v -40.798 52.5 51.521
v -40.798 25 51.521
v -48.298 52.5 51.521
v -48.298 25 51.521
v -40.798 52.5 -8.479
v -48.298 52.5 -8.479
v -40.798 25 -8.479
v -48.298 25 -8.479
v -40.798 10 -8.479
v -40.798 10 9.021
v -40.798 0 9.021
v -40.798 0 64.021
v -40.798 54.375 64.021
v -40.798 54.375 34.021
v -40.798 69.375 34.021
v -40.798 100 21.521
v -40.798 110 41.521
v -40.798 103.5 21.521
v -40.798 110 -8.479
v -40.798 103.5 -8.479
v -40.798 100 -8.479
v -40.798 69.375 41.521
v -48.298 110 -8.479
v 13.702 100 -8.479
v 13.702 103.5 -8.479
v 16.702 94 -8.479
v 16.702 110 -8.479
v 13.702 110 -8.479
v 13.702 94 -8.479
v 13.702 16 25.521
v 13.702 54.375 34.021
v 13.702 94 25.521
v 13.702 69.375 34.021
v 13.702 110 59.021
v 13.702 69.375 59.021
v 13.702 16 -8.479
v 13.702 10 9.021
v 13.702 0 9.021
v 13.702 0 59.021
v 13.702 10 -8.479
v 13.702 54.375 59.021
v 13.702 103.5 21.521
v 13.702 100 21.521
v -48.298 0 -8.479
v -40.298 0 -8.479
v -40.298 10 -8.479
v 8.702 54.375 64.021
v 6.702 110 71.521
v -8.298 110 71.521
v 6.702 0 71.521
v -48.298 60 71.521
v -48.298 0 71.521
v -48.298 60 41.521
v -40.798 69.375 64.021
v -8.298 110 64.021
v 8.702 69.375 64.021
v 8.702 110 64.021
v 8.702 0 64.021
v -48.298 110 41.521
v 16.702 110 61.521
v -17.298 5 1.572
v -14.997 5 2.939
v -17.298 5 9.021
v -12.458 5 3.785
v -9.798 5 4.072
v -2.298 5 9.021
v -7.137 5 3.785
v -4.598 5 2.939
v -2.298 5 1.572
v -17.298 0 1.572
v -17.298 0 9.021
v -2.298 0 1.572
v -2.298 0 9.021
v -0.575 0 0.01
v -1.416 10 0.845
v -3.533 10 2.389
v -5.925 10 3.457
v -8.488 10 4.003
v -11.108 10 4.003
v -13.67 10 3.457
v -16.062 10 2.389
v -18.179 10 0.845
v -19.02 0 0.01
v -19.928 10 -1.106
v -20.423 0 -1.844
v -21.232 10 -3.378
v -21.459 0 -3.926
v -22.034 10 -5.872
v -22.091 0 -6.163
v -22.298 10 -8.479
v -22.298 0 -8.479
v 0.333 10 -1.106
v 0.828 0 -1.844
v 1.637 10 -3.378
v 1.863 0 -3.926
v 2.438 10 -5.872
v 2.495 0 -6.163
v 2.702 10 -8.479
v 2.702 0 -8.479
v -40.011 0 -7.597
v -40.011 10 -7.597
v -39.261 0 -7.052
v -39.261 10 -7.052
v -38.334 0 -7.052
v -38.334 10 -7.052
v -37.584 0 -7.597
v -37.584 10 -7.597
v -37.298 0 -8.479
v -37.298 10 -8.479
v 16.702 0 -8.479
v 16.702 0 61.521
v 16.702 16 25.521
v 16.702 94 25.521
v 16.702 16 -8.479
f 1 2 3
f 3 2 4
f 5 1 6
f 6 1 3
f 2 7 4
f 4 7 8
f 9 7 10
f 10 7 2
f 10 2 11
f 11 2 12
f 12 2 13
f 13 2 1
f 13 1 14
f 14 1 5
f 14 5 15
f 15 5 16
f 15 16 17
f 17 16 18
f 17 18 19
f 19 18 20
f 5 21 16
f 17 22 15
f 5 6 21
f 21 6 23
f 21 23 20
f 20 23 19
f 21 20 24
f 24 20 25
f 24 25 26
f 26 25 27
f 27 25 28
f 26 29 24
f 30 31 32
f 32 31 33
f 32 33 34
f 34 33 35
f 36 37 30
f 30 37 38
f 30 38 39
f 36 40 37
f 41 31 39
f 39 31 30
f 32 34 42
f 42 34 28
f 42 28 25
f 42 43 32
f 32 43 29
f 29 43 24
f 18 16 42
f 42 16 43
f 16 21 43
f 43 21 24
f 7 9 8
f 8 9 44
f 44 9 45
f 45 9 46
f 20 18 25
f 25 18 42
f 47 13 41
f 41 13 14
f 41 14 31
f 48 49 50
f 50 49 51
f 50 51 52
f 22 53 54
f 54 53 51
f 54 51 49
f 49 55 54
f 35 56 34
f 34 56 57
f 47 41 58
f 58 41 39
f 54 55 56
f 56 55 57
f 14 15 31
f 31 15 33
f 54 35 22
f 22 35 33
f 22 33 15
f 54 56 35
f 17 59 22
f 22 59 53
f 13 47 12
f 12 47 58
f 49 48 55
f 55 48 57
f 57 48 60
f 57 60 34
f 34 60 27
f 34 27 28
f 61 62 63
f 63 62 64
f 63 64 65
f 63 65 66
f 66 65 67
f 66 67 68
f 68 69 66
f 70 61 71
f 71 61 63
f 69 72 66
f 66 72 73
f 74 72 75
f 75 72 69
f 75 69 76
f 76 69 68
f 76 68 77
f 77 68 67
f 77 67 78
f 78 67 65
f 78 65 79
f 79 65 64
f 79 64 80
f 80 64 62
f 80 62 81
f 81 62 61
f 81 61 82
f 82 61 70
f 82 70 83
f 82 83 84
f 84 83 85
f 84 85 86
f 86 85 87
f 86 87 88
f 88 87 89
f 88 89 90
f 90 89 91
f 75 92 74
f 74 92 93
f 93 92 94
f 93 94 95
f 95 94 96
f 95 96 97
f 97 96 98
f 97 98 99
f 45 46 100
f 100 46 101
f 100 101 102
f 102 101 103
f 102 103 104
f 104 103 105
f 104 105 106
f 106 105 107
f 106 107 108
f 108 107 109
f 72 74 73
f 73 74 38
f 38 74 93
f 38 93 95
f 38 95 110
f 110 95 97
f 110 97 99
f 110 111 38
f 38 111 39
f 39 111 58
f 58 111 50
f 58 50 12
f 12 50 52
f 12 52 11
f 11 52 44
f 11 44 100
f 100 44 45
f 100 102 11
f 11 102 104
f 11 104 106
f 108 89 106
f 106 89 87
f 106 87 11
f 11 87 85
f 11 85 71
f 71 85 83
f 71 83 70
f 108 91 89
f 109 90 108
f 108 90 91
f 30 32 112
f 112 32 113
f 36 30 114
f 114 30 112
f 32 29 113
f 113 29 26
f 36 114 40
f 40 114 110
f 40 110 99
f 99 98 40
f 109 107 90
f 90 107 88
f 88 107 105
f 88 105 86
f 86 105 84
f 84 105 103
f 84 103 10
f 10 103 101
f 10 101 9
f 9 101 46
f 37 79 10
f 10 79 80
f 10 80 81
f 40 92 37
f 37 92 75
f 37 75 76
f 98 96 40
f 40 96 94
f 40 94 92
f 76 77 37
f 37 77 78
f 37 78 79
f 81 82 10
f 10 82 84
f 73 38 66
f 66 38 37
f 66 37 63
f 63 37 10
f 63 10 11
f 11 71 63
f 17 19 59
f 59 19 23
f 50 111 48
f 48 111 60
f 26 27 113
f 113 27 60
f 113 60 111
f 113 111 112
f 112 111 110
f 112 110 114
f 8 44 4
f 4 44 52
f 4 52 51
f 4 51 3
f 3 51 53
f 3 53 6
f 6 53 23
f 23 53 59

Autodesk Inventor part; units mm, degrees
ref_plane "YZ Plane" through (0, 0, 0) normal (1, 0, 0) x (0, 1, 0)
ref_plane "XZ Plane" through (0, 0, 0) normal (0, 1, 0) x (-1, 0, 0)
ref_plane "XY Plane" through (0, 0, 0) normal (0, 0, 1) x (1, 0, 0)
sketch "Sketch1" plane through (0, 0, 0) normal (0, 1, 0) x (-1, 0, 0)
  line L0 (48.2977, 71.5211) -> (-16.7023, 71.5211)
  line L1 (-16.7023, 71.5211) -> (-16.7023, -8.4789)
  line L2 (-16.7023, -8.4789) -> (48.2977, -8.4789)
  line L3 (48.2977, -8.4789) -> (48.2977, 71.5211)
  arc A0 (22.2975, -8.4789) -> (-2.7023, -8.4789) centre (9.7976, -8.4281) ccw
  line L4 (-16.7023, -8.4789) -> (-13.7023, -8.4789)
  line L5 (-13.7023, -8.4789) -> (-13.7023, 71.5211)
  line L6 (-13.7023, 71.5211) -> (-16.7023, 71.5211)
  line L7 (-16.7023, 71.5211) -> (-16.7023, -8.4789)
  line L8 (48.2977, -8.4789) -> (40.7977, -8.4789)
  line L9 (40.7977, -8.4789) -> (40.7977, 71.5211)
  line L10 (40.7977, 71.5211) -> (48.2977, 71.5211)
  line L11 (48.2977, 71.5211) -> (48.2977, -8.4789)
  line L12 (-13.7023, -8.4789) -> (40.7977, -8.4789)
  line L13 (40.7977, -8.4789) -> (40.7977, 9.0211)
  line L14 (40.7977, 9.0211) -> (-13.7023, 9.0211)
  line L15 (-13.7023, 9.0211) -> (-13.7023, -8.4789)
  line L16 (-13.7023, 71.5211) -> (40.7977, 71.5211)
  line L17 (40.7977, 71.5211) -> (40.7977, 64.0211)
  line L18 (40.7977, 64.0211) -> (-13.7023, 64.0211)
  line L19 (-13.7023, 64.0211) -> (-13.7023, 71.5211)
  line L20 (-16.7023, 61.5211) -> (-6.7023, 71.5211)
  line L21 (-16.7023, 61.5211) -> (-16.7023, 71.5211)
  line L22 (-6.7023, 71.5211) -> (-13.7023, 64.5211)
  line L23 (-13.7023, 64.0211) -> (-13.7023, 64.5211)
  line L24 (-6.7023, 71.5211) -> (40.7977, 71.5211)
  line L25 (40.7977, 64.0211) -> (-13.7023, 64.0211)
  line L26 (-13.7023, 64.5211) -> (-13.7023, 64.0211)
  line L27 (-13.7023, 64.5211) -> (-6.7023, 71.5211)
  line L28 (-13.7023, 54.0211) -> (-3.7023, 64.0211)
  point P0 (0, 0)
  dimension "d0" = 80
  dimension "d1" = 65
  dimension "d3" = 14
  dimension "d4" = 12.5
  dimension "d5" = 7.5
  dimension "d6" = 3
  dimension "d7" = 17.5
  dimension "d8" = 7.5
  dimension "d9" = 10
  dimension "d10" = 10
  dimension "d48" = 10
  dimension "d49" = 10
extrude "Extrusion1" add sketch "Sketch1" along normal blind 110 contours L3 L2 L9 L0 | L9 L18 L5 L20 L0 | L2 A0 L5 L14 L9 | L5 L2 L1 L20
sketch "Sketch2" plane through (-22.2975, 0, -8.4789) normal (0, 0, -1) x (-1, 0, 0)
  line L0 (18.5002, 0) -> (18.5002, 110) projected
  line L1 (18.5002, 110) -> (-35.9998, 110)
  line L2 (-35.9998, 110) -> (-35.9998, 10)
  line L3 (-35.9998, 10) -> (18.5002, 10)
  line L4 (18.5002, 10) -> (18.5002, 110)
  point P0 (-22.2975, 0)
  dimension "d13" = 100
  dimension "d14" = 54.5
extrude "Extrusion2" cut sketch "Sketch2" against normal blind 30
sketch "Sketch3" plane through (-40.7977, 0, 9.0211) normal (0, 0, 1) x (1, 0, 0)
  line L0 (54.5, 10) -> (0, 10) projected
  line L1 (26.0002, 10) -> (36, 10)
  line L2 (18.5002, 10) -> (18.5002, 0) projected
  line L3 (43.5, 0) -> (43.5, 10) projected
  line L4 (0, 0) -> (54.5, 0) projected
  line L5 (38.5, 0) -> (23.5002, 0)
  line L6 (23.5002, 0) -> (23.5002, 5)
  line L7 (23.5002, 5) -> (38.5, 5)
  line L8 (38.5, 5) -> (38.5, 0)
  point P0 (40.7977, 0)
  dimension "d43" = 5
  dimension "d44" = 5
  dimension "d45" = 5
sketch "Sketch4" plane through (16.7023, 0, 61.5211) normal (1, 0, 0) x (0, 0, -1)
  line L0 (70, 110) -> (70, 10) projected
  line L1 (70, 94) -> (36, 94)
  line L2 (36, 94) -> (36, 16)
  line L3 (36, 16) -> (70, 16)
  line L4 (70, 16) -> (70, 94)
  line L5 (0, 0) -> (70, 0) projected
  line L6 (0, 110) -> (70, 110) projected
  point P0 (61.5211, 0)
  dimension "d22" = 34
  dimension "d23" = 16
  dimension "d24" = 16
  dimension "d25" = 78
extrude "Extrusion4" cut sketch "Sketch4" against normal blind 30
sketch "Sketch5" plane through (0, 0, 0) normal (0, -1, 0) x (1, 0, 0)
  line L0 (-40.7977, -8.4789) -> (-22.2975, -8.4789) projected
  arc A0 (-40.2975, -8.4789) -> (-37.2975, -8.4789) centre (-38.7975, -8.4789) ccw
  arc A1 (-37.2975, -8.4789) -> (-40.2975, -8.4789) centre (-38.7975, -8.4789) ccw
  point P0 (0, 0)
  dimension "d28" = 18
  dimension "d29" = 1.5
  dimension "d30" = 0
  dimension "d31" = 1.5
extrude "Extrusion5" cut sketch "Sketch5" against normal blind 30 contours A1 L0
sketch "Sketch7" plane through (-48.2977, 0, 71.5211) normal (0, 0, 1) x (1, 0, 0)
  line L0 (0, 110) -> (55, 110) projected
  line L1 (0, 110) -> (40, 110)
  line L2 (40, 110) -> (0, 60)
  line L3 (0, 60) -> (0, 110)
  line L4 (65, 110) -> (65, 0) projected
  point P0 (48.2977, 0)
  dimension "d39" = 40
  dimension "d40" = 25
  dimension "d41" = 50
extrude "Extrusion6" cut sketch "Sketch3" against normal blind 30 contours L4 L6 L7 L8
sketch "Sketch8" plane through (0, 110, 0) normal (0, 1, 0) x (1, 0, 0)
  line L0 (13.7023, 8.4789) -> (13.7023, -64.0211) projected
  line L1 (13.7023, -59.0211) -> (8.7023, -64.0211)
  line L2 (8.7023, -64.0211) -> (13.7023, -64.0211)
  line L3 (13.7023, -64.0211) -> (13.7023, -59.0211)
  point P0 (0, 0)
  dimension "d50" = 5
  dimension "d51" = 5
extrude "Extrusion7" add sketch "Sketch8" against normal up to surface (110 mm away)
extrude "Extrusion8" cut sketch "Sketch7" against normal blind 30
sketch "Sketch9" plane through (13.7023, 0, 9.0211) normal (-1, 0, 0) x (0, 0, 1)
  line L0 (32.5, 69.375) -> (55, 69.375) projected
  line L1 (50, 0) -> (50, 110) projected
  line L2 (50, 69.375) -> (25, 69.375)
  line L3 (25, 69.375) -> (25, 54.375)
  line L4 (25, 54.375) -> (50, 54.375)
  line L5 (50, 54.375) -> (50, 69.375)
  point P0 (-9.0211, 0)
  dimension "d56" = 15
  dimension "d57" = 25
extrude "Extrusion9" add sketch "Sketch9" along normal up to next
sketch "Sketch10" plane through (-40.7977, 54.375, 59.0211) normal (0, 0, 1) x (1, 0, 0)
  line L0 (54.5, 15) -> (0, 15) projected
  line L1 (55.1529, 0) -> (0.519, 0)
  line L2 (0.519, 0) -> (0.519, 15)
  line L3 (0.519, 15) -> (55.1529, 15)
  line L4 (55.1529, 15) -> (55.1529, 0)
  line L5 (54.5, 0) -> (0, 0) projected
  line L6 (0, 15) -> (27.836, 15)
  line L7 (27.836, 15) -> (27.836, 0)
  line L8 (27.836, 0) -> (0, 0)
  line L9 (0, 0) -> (0, 15)
  point P0 (40.7977, -54.375)
extrude "Extrusion10" add sketch "Sketch10" along normal up to next
sketch "Sketch11" plane through (13.7023, 0, 9.0211) normal (-1, 0, 0) x (0, 0, 1)
  line L0 (-17.5, 94) -> (-17.5, 110) projected
  line L1 (-17.5, 100) -> (12.5, 100)
  line L2 (12.5, 100) -> (12.5, 103.5)
  line L3 (12.5, 103.5) -> (-17.5, 103.5)
  line L4 (-17.5, 103.5) -> (-17.5, 100)
  line L5 (-17.5, 110) -> (50, 110) projected
  point P0 (-9.0211, 0)
  dimension "d62" = 3.5
  dimension "d63" = 30
  dimension "d64" = 10
extrude "Extrusion11" add sketch "Sketch11" along normal up to next
sketch "Sketch12" plane through (-48.2977, 0, -8.4789) normal (-1, 0, 0) x (0, 0, 1)
  line L0 (0, 100) -> (0, 10) projected
  line L1 (0, 52.5) -> (60, 52.5)
  line L2 (60, 52.5) -> (60, 25)
  line L3 (60, 25) -> (0, 25)
  line L4 (0, 25) -> (0, 52.5)
  line L5 (80, 0) -> (80, 60) projected
  line L6 (80, 60) -> (50, 60) projected
  point P0 (8.4789, 0)
  dimension "d67" = 27.5
  dimension "d68" = 60
  dimension "d69" = 20
  dimension "d70" = 7.5
extrude "Extrusion12" cut sketch "Sketch12" against normal up to surface (62 mm away)
equation "\"d8\" = d5"
equation "\"d49\" = d48"
equation "\"d44\" = d43"
equation "\"d24\" = d23"
equation "\"d31\" = d29"
equation "\"d50\" = d51"
properties part number "Basev3.2"
